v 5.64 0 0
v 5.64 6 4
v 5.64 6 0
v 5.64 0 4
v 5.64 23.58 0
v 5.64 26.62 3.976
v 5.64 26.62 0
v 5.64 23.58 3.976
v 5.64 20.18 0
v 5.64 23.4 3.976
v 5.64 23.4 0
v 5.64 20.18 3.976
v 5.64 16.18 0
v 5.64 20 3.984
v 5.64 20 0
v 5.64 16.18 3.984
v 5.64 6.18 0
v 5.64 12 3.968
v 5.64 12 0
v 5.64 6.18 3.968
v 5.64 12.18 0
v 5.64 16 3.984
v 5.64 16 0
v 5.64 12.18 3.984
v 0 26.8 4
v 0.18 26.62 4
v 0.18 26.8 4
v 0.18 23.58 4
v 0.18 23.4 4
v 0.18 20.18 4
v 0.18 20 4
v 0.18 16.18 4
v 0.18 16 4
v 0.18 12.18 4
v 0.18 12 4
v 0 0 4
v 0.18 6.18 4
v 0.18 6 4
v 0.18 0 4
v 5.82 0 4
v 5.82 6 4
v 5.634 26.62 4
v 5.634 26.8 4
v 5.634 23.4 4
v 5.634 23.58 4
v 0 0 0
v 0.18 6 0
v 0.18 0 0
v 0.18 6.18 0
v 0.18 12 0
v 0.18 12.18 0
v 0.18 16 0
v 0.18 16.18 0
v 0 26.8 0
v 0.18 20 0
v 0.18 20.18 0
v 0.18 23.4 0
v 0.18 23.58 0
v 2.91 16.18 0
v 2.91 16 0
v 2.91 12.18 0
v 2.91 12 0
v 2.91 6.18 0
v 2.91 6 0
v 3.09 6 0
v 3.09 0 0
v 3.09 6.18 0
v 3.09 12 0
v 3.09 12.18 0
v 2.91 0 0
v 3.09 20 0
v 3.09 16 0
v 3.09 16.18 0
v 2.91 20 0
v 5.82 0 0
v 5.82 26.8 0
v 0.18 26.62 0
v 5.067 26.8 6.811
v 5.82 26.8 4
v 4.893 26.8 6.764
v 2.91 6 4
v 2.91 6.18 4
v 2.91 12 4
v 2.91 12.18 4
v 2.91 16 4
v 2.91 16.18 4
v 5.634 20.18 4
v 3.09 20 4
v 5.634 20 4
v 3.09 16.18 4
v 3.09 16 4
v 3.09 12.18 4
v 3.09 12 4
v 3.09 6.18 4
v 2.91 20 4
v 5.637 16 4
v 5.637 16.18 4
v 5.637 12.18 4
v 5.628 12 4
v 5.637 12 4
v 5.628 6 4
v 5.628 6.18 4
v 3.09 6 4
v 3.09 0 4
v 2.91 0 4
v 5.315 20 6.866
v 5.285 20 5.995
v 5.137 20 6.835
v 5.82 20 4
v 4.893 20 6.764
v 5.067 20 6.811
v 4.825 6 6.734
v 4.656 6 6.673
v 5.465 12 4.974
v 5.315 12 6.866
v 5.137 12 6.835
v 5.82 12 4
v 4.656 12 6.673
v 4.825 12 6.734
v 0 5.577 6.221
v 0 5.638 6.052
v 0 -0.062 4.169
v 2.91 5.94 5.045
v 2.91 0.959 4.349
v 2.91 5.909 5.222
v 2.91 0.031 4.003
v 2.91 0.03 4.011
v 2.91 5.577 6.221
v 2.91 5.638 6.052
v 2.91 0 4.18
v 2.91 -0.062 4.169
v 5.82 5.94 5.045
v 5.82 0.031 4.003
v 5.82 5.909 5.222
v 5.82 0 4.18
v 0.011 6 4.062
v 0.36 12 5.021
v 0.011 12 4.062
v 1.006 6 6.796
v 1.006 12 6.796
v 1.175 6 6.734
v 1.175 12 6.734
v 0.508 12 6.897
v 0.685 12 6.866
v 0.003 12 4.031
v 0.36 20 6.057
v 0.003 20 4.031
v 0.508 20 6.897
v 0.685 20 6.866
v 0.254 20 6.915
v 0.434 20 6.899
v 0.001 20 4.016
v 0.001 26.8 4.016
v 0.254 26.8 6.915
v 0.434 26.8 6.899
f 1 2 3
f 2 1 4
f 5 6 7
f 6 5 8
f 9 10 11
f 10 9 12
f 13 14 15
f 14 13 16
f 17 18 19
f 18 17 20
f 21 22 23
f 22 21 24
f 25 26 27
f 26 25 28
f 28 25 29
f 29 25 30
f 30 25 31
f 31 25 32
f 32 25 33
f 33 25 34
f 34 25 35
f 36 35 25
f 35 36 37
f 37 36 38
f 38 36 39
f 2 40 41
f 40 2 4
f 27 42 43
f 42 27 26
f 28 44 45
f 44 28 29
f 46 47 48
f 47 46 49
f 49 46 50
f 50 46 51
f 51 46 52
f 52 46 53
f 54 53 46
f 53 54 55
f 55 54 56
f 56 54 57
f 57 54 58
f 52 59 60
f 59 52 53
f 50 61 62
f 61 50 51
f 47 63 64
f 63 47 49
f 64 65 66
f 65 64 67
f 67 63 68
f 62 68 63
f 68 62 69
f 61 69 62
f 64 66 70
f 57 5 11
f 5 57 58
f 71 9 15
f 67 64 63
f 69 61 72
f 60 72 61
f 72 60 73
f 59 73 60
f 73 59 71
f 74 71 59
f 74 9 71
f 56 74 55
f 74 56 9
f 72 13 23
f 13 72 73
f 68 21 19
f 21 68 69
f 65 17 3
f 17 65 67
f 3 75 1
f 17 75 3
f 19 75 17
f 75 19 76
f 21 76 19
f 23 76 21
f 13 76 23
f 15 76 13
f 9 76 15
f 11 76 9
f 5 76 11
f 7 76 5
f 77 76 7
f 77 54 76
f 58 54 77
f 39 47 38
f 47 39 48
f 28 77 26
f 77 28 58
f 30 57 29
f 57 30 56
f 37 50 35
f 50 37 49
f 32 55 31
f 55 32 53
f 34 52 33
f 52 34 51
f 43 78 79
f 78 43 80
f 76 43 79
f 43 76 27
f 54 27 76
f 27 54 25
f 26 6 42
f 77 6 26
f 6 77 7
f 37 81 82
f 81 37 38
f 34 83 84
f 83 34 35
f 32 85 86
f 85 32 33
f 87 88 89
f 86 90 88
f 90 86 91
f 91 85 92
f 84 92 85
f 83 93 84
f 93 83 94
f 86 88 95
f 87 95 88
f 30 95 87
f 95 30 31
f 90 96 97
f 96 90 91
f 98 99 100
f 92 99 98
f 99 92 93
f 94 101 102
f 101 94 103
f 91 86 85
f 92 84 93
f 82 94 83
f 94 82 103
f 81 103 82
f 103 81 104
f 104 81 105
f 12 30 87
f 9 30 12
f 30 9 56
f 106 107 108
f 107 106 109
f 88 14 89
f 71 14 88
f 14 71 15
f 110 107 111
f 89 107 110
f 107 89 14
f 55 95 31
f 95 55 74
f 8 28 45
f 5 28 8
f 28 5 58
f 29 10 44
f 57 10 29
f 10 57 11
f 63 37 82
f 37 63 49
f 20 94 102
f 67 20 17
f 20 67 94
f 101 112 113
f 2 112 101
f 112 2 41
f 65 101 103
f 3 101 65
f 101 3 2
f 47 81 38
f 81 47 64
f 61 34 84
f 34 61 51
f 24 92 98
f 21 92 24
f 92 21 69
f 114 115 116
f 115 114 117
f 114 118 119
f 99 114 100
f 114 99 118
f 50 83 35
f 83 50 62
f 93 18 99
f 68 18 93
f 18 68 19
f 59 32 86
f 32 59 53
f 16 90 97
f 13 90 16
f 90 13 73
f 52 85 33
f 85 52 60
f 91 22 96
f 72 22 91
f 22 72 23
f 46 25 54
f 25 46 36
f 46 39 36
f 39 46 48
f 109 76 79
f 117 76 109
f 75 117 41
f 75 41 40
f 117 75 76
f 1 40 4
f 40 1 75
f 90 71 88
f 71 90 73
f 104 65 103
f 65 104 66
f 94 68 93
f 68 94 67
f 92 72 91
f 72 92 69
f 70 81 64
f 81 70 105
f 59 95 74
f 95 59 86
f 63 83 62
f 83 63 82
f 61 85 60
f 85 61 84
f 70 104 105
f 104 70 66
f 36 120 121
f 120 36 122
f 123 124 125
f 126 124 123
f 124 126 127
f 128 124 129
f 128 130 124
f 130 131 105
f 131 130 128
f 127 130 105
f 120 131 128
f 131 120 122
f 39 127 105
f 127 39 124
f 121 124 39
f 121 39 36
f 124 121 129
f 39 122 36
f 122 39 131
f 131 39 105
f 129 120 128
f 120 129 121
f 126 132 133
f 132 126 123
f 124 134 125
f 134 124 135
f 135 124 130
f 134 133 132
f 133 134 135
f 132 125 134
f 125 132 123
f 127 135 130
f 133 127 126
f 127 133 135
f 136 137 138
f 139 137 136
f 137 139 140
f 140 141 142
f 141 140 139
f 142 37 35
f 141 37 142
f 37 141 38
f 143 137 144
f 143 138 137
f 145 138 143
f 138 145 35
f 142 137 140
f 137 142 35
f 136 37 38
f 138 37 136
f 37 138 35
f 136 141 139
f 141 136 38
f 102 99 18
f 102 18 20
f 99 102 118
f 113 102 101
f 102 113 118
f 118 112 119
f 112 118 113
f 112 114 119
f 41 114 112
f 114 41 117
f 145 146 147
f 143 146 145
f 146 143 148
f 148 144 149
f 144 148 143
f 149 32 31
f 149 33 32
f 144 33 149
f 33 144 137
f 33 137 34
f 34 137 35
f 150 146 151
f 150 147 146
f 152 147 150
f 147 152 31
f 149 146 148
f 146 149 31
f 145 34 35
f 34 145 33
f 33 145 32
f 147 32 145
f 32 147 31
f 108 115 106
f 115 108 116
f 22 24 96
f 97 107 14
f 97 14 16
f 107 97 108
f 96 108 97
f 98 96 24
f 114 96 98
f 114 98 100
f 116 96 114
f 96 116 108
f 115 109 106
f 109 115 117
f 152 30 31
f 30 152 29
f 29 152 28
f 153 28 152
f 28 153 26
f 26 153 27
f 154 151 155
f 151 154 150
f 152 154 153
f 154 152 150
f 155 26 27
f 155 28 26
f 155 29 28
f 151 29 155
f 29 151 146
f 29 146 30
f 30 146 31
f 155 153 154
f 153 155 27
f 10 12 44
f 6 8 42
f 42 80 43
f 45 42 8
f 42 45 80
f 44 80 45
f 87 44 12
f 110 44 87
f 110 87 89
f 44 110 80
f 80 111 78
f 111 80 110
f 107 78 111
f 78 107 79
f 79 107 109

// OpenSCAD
module bathroom_cabinet() {
    PLANK_THICKNESS = 0.18;
    CLOSET_HEIGHT = 26.8;
    CLOSED_DEPTH = 4.;
    CLOSET_WIDTH = 6. - PLANK_THICKNESS; // this is to make it like 2 x 30mm cabinets
    MIDDLE_PLANK_DEPTH = CLOSED_DEPTH;
    MIDDLE_VERTICAL_PLANK_HEIGHT = CLOSET_HEIGHT - PLANK_THICKNESS;
    MIDDLE_HORIZONTAL_PLANK_Y = 20.0;
    TOP_HORIZONTAL_DIVIDER_PLANK_Y = MIDDLE_HORIZONTAL_PLANK_Y + 0.5 * (CLOSET_HEIGHT - MIDDLE_HORIZONTAL_PLANK_Y);
    LAUNDRY_BASKET_TOP_Y = 6.0;
    VERTICAL_MIDDLE_PLANK_X = 0.5 * (CLOSET_WIDTH);
    HORIZONTAL_MIDDLE_PLANK_Y = 12.0;

    // top_plank
    translate([PLANK_THICKNESS, MIDDLE_VERTICAL_PLANK_HEIGHT, 0.]) {
        cube([CLOSET_WIDTH - 2. * PLANK_THICKNESS, PLANK_THICKNESS, CLOSED_DEPTH]);
    }
    // top_horizontal_plank
    translate([PLANK_THICKNESS, MIDDLE_HORIZONTAL_PLANK_Y, 0.]) {
        cube([CLOSET_WIDTH - 2. * PLANK_THICKNESS, PLANK_THICKNESS, MIDDLE_PLANK_DEPTH]);
    }
    // top_horizontal_divider_plank
    translate([PLANK_THICKNESS, TOP_HORIZONTAL_DIVIDER_PLANK_Y, 0.]) {
        cube([CLOSET_WIDTH - 2. * PLANK_THICKNESS, PLANK_THICKNESS, MIDDLE_PLANK_DEPTH]);
    }
    // laundry_basket_top_plank
    translate([PLANK_THICKNESS, LAUNDRY_BASKET_TOP_Y, 0.]) {
        cube([CLOSET_WIDTH - 2. * PLANK_THICKNESS, PLANK_THICKNESS, MIDDLE_PLANK_DEPTH]);
    }
    // middle_horizontal_plank
    translate([PLANK_THICKNESS, HORIZONTAL_MIDDLE_PLANK_Y, 0.]) {
        cube([CLOSET_WIDTH - 2. * PLANK_THICKNESS, PLANK_THICKNESS, MIDDLE_PLANK_DEPTH]);
    }
    translate([PLANK_THICKNESS, (MIDDLE_HORIZONTAL_PLANK_Y + HORIZONTAL_MIDDLE_PLANK_Y)/2, 0.]) {
        cube([CLOSET_WIDTH - 2. * PLANK_THICKNESS, PLANK_THICKNESS, MIDDLE_PLANK_DEPTH]);
    }
    side_plank = [PLANK_THICKNESS, CLOSET_HEIGHT, CLOSED_DEPTH];
    // entrance_side_plank
    translate([0, 0, 0]) {
        cube(side_plank);
    }
    // shower_side_plank
    translate([CLOSET_WIDTH - PLANK_THICKNESS, 0., 0.]) {
        cube(side_plank);
    }
    // middle vertical plank
    translate([VERTICAL_MIDDLE_PLANK_X, 0., 0.]) {
        cube([PLANK_THICKNESS, MIDDLE_HORIZONTAL_PLANK_Y, MIDDLE_PLANK_DEPTH]);
    }
    // basket door
    translate([0, 0, CLOSED_DEPTH]) {
        rotate([20, 0, 0]) {
            cube([CLOSET_WIDTH / 2, LAUNDRY_BASKET_TOP_Y, PLANK_THICKNESS]);
        }
    }
    translate([CLOSET_WIDTH, 0, CLOSED_DEPTH + PLANK_THICKNESS]) {
        rotate([-10, 180, 0]) {
            cube([CLOSET_WIDTH / 2, LAUNDRY_BASKET_TOP_Y, PLANK_THICKNESS]);
        }
    }
    // middle doors
    translate([PLANK_THICKNESS, LAUNDRY_BASKET_TOP_Y, CLOSED_DEPTH]) {
        rotate([0, -70, 0]) {
            cube([CLOSET_WIDTH / 2, LAUNDRY_BASKET_TOP_Y, PLANK_THICKNESS]);
        }
    }
    translate([CLOSET_WIDTH, LAUNDRY_BASKET_TOP_Y, CLOSED_DEPTH]) {
        rotate([0, -110, 0]) {
            cube([CLOSET_WIDTH / 2, LAUNDRY_BASKET_TOP_Y, PLANK_THICKNESS]);
        }
    }
    // top middle doors
    translate([PLANK_THICKNESS, HORIZONTAL_MIDDLE_PLANK_Y, CLOSED_DEPTH]) {
        rotate([0, -80, 0]) {
            cube([CLOSET_WIDTH / 2, MIDDLE_HORIZONTAL_PLANK_Y - HORIZONTAL_MIDDLE_PLANK_Y, PLANK_THICKNESS]);
        }
    }
    translate([CLOSET_WIDTH, HORIZONTAL_MIDDLE_PLANK_Y, CLOSED_DEPTH]) {
        rotate([0, -100, 0]) {
            cube([CLOSET_WIDTH / 2, MIDDLE_HORIZONTAL_PLANK_Y - HORIZONTAL_MIDDLE_PLANK_Y, PLANK_THICKNESS]);
        }
    }
    // top top doors
    translate([PLANK_THICKNESS, MIDDLE_HORIZONTAL_PLANK_Y, CLOSED_DEPTH]) {
        rotate([0, -85, 0]) {
            cube([CLOSET_WIDTH / 2, CLOSET_HEIGHT - MIDDLE_HORIZONTAL_PLANK_Y, PLANK_THICKNESS]);
        }
    }
    translate([CLOSET_WIDTH, MIDDLE_HORIZONTAL_PLANK_Y, CLOSED_DEPTH]) {
        rotate([0, -105, 0]) {
            cube([CLOSET_WIDTH / 2, CLOSET_HEIGHT - MIDDLE_HORIZONTAL_PLANK_Y, PLANK_THICKNESS]);
        }
    }
}
bathroom_cabinet();
